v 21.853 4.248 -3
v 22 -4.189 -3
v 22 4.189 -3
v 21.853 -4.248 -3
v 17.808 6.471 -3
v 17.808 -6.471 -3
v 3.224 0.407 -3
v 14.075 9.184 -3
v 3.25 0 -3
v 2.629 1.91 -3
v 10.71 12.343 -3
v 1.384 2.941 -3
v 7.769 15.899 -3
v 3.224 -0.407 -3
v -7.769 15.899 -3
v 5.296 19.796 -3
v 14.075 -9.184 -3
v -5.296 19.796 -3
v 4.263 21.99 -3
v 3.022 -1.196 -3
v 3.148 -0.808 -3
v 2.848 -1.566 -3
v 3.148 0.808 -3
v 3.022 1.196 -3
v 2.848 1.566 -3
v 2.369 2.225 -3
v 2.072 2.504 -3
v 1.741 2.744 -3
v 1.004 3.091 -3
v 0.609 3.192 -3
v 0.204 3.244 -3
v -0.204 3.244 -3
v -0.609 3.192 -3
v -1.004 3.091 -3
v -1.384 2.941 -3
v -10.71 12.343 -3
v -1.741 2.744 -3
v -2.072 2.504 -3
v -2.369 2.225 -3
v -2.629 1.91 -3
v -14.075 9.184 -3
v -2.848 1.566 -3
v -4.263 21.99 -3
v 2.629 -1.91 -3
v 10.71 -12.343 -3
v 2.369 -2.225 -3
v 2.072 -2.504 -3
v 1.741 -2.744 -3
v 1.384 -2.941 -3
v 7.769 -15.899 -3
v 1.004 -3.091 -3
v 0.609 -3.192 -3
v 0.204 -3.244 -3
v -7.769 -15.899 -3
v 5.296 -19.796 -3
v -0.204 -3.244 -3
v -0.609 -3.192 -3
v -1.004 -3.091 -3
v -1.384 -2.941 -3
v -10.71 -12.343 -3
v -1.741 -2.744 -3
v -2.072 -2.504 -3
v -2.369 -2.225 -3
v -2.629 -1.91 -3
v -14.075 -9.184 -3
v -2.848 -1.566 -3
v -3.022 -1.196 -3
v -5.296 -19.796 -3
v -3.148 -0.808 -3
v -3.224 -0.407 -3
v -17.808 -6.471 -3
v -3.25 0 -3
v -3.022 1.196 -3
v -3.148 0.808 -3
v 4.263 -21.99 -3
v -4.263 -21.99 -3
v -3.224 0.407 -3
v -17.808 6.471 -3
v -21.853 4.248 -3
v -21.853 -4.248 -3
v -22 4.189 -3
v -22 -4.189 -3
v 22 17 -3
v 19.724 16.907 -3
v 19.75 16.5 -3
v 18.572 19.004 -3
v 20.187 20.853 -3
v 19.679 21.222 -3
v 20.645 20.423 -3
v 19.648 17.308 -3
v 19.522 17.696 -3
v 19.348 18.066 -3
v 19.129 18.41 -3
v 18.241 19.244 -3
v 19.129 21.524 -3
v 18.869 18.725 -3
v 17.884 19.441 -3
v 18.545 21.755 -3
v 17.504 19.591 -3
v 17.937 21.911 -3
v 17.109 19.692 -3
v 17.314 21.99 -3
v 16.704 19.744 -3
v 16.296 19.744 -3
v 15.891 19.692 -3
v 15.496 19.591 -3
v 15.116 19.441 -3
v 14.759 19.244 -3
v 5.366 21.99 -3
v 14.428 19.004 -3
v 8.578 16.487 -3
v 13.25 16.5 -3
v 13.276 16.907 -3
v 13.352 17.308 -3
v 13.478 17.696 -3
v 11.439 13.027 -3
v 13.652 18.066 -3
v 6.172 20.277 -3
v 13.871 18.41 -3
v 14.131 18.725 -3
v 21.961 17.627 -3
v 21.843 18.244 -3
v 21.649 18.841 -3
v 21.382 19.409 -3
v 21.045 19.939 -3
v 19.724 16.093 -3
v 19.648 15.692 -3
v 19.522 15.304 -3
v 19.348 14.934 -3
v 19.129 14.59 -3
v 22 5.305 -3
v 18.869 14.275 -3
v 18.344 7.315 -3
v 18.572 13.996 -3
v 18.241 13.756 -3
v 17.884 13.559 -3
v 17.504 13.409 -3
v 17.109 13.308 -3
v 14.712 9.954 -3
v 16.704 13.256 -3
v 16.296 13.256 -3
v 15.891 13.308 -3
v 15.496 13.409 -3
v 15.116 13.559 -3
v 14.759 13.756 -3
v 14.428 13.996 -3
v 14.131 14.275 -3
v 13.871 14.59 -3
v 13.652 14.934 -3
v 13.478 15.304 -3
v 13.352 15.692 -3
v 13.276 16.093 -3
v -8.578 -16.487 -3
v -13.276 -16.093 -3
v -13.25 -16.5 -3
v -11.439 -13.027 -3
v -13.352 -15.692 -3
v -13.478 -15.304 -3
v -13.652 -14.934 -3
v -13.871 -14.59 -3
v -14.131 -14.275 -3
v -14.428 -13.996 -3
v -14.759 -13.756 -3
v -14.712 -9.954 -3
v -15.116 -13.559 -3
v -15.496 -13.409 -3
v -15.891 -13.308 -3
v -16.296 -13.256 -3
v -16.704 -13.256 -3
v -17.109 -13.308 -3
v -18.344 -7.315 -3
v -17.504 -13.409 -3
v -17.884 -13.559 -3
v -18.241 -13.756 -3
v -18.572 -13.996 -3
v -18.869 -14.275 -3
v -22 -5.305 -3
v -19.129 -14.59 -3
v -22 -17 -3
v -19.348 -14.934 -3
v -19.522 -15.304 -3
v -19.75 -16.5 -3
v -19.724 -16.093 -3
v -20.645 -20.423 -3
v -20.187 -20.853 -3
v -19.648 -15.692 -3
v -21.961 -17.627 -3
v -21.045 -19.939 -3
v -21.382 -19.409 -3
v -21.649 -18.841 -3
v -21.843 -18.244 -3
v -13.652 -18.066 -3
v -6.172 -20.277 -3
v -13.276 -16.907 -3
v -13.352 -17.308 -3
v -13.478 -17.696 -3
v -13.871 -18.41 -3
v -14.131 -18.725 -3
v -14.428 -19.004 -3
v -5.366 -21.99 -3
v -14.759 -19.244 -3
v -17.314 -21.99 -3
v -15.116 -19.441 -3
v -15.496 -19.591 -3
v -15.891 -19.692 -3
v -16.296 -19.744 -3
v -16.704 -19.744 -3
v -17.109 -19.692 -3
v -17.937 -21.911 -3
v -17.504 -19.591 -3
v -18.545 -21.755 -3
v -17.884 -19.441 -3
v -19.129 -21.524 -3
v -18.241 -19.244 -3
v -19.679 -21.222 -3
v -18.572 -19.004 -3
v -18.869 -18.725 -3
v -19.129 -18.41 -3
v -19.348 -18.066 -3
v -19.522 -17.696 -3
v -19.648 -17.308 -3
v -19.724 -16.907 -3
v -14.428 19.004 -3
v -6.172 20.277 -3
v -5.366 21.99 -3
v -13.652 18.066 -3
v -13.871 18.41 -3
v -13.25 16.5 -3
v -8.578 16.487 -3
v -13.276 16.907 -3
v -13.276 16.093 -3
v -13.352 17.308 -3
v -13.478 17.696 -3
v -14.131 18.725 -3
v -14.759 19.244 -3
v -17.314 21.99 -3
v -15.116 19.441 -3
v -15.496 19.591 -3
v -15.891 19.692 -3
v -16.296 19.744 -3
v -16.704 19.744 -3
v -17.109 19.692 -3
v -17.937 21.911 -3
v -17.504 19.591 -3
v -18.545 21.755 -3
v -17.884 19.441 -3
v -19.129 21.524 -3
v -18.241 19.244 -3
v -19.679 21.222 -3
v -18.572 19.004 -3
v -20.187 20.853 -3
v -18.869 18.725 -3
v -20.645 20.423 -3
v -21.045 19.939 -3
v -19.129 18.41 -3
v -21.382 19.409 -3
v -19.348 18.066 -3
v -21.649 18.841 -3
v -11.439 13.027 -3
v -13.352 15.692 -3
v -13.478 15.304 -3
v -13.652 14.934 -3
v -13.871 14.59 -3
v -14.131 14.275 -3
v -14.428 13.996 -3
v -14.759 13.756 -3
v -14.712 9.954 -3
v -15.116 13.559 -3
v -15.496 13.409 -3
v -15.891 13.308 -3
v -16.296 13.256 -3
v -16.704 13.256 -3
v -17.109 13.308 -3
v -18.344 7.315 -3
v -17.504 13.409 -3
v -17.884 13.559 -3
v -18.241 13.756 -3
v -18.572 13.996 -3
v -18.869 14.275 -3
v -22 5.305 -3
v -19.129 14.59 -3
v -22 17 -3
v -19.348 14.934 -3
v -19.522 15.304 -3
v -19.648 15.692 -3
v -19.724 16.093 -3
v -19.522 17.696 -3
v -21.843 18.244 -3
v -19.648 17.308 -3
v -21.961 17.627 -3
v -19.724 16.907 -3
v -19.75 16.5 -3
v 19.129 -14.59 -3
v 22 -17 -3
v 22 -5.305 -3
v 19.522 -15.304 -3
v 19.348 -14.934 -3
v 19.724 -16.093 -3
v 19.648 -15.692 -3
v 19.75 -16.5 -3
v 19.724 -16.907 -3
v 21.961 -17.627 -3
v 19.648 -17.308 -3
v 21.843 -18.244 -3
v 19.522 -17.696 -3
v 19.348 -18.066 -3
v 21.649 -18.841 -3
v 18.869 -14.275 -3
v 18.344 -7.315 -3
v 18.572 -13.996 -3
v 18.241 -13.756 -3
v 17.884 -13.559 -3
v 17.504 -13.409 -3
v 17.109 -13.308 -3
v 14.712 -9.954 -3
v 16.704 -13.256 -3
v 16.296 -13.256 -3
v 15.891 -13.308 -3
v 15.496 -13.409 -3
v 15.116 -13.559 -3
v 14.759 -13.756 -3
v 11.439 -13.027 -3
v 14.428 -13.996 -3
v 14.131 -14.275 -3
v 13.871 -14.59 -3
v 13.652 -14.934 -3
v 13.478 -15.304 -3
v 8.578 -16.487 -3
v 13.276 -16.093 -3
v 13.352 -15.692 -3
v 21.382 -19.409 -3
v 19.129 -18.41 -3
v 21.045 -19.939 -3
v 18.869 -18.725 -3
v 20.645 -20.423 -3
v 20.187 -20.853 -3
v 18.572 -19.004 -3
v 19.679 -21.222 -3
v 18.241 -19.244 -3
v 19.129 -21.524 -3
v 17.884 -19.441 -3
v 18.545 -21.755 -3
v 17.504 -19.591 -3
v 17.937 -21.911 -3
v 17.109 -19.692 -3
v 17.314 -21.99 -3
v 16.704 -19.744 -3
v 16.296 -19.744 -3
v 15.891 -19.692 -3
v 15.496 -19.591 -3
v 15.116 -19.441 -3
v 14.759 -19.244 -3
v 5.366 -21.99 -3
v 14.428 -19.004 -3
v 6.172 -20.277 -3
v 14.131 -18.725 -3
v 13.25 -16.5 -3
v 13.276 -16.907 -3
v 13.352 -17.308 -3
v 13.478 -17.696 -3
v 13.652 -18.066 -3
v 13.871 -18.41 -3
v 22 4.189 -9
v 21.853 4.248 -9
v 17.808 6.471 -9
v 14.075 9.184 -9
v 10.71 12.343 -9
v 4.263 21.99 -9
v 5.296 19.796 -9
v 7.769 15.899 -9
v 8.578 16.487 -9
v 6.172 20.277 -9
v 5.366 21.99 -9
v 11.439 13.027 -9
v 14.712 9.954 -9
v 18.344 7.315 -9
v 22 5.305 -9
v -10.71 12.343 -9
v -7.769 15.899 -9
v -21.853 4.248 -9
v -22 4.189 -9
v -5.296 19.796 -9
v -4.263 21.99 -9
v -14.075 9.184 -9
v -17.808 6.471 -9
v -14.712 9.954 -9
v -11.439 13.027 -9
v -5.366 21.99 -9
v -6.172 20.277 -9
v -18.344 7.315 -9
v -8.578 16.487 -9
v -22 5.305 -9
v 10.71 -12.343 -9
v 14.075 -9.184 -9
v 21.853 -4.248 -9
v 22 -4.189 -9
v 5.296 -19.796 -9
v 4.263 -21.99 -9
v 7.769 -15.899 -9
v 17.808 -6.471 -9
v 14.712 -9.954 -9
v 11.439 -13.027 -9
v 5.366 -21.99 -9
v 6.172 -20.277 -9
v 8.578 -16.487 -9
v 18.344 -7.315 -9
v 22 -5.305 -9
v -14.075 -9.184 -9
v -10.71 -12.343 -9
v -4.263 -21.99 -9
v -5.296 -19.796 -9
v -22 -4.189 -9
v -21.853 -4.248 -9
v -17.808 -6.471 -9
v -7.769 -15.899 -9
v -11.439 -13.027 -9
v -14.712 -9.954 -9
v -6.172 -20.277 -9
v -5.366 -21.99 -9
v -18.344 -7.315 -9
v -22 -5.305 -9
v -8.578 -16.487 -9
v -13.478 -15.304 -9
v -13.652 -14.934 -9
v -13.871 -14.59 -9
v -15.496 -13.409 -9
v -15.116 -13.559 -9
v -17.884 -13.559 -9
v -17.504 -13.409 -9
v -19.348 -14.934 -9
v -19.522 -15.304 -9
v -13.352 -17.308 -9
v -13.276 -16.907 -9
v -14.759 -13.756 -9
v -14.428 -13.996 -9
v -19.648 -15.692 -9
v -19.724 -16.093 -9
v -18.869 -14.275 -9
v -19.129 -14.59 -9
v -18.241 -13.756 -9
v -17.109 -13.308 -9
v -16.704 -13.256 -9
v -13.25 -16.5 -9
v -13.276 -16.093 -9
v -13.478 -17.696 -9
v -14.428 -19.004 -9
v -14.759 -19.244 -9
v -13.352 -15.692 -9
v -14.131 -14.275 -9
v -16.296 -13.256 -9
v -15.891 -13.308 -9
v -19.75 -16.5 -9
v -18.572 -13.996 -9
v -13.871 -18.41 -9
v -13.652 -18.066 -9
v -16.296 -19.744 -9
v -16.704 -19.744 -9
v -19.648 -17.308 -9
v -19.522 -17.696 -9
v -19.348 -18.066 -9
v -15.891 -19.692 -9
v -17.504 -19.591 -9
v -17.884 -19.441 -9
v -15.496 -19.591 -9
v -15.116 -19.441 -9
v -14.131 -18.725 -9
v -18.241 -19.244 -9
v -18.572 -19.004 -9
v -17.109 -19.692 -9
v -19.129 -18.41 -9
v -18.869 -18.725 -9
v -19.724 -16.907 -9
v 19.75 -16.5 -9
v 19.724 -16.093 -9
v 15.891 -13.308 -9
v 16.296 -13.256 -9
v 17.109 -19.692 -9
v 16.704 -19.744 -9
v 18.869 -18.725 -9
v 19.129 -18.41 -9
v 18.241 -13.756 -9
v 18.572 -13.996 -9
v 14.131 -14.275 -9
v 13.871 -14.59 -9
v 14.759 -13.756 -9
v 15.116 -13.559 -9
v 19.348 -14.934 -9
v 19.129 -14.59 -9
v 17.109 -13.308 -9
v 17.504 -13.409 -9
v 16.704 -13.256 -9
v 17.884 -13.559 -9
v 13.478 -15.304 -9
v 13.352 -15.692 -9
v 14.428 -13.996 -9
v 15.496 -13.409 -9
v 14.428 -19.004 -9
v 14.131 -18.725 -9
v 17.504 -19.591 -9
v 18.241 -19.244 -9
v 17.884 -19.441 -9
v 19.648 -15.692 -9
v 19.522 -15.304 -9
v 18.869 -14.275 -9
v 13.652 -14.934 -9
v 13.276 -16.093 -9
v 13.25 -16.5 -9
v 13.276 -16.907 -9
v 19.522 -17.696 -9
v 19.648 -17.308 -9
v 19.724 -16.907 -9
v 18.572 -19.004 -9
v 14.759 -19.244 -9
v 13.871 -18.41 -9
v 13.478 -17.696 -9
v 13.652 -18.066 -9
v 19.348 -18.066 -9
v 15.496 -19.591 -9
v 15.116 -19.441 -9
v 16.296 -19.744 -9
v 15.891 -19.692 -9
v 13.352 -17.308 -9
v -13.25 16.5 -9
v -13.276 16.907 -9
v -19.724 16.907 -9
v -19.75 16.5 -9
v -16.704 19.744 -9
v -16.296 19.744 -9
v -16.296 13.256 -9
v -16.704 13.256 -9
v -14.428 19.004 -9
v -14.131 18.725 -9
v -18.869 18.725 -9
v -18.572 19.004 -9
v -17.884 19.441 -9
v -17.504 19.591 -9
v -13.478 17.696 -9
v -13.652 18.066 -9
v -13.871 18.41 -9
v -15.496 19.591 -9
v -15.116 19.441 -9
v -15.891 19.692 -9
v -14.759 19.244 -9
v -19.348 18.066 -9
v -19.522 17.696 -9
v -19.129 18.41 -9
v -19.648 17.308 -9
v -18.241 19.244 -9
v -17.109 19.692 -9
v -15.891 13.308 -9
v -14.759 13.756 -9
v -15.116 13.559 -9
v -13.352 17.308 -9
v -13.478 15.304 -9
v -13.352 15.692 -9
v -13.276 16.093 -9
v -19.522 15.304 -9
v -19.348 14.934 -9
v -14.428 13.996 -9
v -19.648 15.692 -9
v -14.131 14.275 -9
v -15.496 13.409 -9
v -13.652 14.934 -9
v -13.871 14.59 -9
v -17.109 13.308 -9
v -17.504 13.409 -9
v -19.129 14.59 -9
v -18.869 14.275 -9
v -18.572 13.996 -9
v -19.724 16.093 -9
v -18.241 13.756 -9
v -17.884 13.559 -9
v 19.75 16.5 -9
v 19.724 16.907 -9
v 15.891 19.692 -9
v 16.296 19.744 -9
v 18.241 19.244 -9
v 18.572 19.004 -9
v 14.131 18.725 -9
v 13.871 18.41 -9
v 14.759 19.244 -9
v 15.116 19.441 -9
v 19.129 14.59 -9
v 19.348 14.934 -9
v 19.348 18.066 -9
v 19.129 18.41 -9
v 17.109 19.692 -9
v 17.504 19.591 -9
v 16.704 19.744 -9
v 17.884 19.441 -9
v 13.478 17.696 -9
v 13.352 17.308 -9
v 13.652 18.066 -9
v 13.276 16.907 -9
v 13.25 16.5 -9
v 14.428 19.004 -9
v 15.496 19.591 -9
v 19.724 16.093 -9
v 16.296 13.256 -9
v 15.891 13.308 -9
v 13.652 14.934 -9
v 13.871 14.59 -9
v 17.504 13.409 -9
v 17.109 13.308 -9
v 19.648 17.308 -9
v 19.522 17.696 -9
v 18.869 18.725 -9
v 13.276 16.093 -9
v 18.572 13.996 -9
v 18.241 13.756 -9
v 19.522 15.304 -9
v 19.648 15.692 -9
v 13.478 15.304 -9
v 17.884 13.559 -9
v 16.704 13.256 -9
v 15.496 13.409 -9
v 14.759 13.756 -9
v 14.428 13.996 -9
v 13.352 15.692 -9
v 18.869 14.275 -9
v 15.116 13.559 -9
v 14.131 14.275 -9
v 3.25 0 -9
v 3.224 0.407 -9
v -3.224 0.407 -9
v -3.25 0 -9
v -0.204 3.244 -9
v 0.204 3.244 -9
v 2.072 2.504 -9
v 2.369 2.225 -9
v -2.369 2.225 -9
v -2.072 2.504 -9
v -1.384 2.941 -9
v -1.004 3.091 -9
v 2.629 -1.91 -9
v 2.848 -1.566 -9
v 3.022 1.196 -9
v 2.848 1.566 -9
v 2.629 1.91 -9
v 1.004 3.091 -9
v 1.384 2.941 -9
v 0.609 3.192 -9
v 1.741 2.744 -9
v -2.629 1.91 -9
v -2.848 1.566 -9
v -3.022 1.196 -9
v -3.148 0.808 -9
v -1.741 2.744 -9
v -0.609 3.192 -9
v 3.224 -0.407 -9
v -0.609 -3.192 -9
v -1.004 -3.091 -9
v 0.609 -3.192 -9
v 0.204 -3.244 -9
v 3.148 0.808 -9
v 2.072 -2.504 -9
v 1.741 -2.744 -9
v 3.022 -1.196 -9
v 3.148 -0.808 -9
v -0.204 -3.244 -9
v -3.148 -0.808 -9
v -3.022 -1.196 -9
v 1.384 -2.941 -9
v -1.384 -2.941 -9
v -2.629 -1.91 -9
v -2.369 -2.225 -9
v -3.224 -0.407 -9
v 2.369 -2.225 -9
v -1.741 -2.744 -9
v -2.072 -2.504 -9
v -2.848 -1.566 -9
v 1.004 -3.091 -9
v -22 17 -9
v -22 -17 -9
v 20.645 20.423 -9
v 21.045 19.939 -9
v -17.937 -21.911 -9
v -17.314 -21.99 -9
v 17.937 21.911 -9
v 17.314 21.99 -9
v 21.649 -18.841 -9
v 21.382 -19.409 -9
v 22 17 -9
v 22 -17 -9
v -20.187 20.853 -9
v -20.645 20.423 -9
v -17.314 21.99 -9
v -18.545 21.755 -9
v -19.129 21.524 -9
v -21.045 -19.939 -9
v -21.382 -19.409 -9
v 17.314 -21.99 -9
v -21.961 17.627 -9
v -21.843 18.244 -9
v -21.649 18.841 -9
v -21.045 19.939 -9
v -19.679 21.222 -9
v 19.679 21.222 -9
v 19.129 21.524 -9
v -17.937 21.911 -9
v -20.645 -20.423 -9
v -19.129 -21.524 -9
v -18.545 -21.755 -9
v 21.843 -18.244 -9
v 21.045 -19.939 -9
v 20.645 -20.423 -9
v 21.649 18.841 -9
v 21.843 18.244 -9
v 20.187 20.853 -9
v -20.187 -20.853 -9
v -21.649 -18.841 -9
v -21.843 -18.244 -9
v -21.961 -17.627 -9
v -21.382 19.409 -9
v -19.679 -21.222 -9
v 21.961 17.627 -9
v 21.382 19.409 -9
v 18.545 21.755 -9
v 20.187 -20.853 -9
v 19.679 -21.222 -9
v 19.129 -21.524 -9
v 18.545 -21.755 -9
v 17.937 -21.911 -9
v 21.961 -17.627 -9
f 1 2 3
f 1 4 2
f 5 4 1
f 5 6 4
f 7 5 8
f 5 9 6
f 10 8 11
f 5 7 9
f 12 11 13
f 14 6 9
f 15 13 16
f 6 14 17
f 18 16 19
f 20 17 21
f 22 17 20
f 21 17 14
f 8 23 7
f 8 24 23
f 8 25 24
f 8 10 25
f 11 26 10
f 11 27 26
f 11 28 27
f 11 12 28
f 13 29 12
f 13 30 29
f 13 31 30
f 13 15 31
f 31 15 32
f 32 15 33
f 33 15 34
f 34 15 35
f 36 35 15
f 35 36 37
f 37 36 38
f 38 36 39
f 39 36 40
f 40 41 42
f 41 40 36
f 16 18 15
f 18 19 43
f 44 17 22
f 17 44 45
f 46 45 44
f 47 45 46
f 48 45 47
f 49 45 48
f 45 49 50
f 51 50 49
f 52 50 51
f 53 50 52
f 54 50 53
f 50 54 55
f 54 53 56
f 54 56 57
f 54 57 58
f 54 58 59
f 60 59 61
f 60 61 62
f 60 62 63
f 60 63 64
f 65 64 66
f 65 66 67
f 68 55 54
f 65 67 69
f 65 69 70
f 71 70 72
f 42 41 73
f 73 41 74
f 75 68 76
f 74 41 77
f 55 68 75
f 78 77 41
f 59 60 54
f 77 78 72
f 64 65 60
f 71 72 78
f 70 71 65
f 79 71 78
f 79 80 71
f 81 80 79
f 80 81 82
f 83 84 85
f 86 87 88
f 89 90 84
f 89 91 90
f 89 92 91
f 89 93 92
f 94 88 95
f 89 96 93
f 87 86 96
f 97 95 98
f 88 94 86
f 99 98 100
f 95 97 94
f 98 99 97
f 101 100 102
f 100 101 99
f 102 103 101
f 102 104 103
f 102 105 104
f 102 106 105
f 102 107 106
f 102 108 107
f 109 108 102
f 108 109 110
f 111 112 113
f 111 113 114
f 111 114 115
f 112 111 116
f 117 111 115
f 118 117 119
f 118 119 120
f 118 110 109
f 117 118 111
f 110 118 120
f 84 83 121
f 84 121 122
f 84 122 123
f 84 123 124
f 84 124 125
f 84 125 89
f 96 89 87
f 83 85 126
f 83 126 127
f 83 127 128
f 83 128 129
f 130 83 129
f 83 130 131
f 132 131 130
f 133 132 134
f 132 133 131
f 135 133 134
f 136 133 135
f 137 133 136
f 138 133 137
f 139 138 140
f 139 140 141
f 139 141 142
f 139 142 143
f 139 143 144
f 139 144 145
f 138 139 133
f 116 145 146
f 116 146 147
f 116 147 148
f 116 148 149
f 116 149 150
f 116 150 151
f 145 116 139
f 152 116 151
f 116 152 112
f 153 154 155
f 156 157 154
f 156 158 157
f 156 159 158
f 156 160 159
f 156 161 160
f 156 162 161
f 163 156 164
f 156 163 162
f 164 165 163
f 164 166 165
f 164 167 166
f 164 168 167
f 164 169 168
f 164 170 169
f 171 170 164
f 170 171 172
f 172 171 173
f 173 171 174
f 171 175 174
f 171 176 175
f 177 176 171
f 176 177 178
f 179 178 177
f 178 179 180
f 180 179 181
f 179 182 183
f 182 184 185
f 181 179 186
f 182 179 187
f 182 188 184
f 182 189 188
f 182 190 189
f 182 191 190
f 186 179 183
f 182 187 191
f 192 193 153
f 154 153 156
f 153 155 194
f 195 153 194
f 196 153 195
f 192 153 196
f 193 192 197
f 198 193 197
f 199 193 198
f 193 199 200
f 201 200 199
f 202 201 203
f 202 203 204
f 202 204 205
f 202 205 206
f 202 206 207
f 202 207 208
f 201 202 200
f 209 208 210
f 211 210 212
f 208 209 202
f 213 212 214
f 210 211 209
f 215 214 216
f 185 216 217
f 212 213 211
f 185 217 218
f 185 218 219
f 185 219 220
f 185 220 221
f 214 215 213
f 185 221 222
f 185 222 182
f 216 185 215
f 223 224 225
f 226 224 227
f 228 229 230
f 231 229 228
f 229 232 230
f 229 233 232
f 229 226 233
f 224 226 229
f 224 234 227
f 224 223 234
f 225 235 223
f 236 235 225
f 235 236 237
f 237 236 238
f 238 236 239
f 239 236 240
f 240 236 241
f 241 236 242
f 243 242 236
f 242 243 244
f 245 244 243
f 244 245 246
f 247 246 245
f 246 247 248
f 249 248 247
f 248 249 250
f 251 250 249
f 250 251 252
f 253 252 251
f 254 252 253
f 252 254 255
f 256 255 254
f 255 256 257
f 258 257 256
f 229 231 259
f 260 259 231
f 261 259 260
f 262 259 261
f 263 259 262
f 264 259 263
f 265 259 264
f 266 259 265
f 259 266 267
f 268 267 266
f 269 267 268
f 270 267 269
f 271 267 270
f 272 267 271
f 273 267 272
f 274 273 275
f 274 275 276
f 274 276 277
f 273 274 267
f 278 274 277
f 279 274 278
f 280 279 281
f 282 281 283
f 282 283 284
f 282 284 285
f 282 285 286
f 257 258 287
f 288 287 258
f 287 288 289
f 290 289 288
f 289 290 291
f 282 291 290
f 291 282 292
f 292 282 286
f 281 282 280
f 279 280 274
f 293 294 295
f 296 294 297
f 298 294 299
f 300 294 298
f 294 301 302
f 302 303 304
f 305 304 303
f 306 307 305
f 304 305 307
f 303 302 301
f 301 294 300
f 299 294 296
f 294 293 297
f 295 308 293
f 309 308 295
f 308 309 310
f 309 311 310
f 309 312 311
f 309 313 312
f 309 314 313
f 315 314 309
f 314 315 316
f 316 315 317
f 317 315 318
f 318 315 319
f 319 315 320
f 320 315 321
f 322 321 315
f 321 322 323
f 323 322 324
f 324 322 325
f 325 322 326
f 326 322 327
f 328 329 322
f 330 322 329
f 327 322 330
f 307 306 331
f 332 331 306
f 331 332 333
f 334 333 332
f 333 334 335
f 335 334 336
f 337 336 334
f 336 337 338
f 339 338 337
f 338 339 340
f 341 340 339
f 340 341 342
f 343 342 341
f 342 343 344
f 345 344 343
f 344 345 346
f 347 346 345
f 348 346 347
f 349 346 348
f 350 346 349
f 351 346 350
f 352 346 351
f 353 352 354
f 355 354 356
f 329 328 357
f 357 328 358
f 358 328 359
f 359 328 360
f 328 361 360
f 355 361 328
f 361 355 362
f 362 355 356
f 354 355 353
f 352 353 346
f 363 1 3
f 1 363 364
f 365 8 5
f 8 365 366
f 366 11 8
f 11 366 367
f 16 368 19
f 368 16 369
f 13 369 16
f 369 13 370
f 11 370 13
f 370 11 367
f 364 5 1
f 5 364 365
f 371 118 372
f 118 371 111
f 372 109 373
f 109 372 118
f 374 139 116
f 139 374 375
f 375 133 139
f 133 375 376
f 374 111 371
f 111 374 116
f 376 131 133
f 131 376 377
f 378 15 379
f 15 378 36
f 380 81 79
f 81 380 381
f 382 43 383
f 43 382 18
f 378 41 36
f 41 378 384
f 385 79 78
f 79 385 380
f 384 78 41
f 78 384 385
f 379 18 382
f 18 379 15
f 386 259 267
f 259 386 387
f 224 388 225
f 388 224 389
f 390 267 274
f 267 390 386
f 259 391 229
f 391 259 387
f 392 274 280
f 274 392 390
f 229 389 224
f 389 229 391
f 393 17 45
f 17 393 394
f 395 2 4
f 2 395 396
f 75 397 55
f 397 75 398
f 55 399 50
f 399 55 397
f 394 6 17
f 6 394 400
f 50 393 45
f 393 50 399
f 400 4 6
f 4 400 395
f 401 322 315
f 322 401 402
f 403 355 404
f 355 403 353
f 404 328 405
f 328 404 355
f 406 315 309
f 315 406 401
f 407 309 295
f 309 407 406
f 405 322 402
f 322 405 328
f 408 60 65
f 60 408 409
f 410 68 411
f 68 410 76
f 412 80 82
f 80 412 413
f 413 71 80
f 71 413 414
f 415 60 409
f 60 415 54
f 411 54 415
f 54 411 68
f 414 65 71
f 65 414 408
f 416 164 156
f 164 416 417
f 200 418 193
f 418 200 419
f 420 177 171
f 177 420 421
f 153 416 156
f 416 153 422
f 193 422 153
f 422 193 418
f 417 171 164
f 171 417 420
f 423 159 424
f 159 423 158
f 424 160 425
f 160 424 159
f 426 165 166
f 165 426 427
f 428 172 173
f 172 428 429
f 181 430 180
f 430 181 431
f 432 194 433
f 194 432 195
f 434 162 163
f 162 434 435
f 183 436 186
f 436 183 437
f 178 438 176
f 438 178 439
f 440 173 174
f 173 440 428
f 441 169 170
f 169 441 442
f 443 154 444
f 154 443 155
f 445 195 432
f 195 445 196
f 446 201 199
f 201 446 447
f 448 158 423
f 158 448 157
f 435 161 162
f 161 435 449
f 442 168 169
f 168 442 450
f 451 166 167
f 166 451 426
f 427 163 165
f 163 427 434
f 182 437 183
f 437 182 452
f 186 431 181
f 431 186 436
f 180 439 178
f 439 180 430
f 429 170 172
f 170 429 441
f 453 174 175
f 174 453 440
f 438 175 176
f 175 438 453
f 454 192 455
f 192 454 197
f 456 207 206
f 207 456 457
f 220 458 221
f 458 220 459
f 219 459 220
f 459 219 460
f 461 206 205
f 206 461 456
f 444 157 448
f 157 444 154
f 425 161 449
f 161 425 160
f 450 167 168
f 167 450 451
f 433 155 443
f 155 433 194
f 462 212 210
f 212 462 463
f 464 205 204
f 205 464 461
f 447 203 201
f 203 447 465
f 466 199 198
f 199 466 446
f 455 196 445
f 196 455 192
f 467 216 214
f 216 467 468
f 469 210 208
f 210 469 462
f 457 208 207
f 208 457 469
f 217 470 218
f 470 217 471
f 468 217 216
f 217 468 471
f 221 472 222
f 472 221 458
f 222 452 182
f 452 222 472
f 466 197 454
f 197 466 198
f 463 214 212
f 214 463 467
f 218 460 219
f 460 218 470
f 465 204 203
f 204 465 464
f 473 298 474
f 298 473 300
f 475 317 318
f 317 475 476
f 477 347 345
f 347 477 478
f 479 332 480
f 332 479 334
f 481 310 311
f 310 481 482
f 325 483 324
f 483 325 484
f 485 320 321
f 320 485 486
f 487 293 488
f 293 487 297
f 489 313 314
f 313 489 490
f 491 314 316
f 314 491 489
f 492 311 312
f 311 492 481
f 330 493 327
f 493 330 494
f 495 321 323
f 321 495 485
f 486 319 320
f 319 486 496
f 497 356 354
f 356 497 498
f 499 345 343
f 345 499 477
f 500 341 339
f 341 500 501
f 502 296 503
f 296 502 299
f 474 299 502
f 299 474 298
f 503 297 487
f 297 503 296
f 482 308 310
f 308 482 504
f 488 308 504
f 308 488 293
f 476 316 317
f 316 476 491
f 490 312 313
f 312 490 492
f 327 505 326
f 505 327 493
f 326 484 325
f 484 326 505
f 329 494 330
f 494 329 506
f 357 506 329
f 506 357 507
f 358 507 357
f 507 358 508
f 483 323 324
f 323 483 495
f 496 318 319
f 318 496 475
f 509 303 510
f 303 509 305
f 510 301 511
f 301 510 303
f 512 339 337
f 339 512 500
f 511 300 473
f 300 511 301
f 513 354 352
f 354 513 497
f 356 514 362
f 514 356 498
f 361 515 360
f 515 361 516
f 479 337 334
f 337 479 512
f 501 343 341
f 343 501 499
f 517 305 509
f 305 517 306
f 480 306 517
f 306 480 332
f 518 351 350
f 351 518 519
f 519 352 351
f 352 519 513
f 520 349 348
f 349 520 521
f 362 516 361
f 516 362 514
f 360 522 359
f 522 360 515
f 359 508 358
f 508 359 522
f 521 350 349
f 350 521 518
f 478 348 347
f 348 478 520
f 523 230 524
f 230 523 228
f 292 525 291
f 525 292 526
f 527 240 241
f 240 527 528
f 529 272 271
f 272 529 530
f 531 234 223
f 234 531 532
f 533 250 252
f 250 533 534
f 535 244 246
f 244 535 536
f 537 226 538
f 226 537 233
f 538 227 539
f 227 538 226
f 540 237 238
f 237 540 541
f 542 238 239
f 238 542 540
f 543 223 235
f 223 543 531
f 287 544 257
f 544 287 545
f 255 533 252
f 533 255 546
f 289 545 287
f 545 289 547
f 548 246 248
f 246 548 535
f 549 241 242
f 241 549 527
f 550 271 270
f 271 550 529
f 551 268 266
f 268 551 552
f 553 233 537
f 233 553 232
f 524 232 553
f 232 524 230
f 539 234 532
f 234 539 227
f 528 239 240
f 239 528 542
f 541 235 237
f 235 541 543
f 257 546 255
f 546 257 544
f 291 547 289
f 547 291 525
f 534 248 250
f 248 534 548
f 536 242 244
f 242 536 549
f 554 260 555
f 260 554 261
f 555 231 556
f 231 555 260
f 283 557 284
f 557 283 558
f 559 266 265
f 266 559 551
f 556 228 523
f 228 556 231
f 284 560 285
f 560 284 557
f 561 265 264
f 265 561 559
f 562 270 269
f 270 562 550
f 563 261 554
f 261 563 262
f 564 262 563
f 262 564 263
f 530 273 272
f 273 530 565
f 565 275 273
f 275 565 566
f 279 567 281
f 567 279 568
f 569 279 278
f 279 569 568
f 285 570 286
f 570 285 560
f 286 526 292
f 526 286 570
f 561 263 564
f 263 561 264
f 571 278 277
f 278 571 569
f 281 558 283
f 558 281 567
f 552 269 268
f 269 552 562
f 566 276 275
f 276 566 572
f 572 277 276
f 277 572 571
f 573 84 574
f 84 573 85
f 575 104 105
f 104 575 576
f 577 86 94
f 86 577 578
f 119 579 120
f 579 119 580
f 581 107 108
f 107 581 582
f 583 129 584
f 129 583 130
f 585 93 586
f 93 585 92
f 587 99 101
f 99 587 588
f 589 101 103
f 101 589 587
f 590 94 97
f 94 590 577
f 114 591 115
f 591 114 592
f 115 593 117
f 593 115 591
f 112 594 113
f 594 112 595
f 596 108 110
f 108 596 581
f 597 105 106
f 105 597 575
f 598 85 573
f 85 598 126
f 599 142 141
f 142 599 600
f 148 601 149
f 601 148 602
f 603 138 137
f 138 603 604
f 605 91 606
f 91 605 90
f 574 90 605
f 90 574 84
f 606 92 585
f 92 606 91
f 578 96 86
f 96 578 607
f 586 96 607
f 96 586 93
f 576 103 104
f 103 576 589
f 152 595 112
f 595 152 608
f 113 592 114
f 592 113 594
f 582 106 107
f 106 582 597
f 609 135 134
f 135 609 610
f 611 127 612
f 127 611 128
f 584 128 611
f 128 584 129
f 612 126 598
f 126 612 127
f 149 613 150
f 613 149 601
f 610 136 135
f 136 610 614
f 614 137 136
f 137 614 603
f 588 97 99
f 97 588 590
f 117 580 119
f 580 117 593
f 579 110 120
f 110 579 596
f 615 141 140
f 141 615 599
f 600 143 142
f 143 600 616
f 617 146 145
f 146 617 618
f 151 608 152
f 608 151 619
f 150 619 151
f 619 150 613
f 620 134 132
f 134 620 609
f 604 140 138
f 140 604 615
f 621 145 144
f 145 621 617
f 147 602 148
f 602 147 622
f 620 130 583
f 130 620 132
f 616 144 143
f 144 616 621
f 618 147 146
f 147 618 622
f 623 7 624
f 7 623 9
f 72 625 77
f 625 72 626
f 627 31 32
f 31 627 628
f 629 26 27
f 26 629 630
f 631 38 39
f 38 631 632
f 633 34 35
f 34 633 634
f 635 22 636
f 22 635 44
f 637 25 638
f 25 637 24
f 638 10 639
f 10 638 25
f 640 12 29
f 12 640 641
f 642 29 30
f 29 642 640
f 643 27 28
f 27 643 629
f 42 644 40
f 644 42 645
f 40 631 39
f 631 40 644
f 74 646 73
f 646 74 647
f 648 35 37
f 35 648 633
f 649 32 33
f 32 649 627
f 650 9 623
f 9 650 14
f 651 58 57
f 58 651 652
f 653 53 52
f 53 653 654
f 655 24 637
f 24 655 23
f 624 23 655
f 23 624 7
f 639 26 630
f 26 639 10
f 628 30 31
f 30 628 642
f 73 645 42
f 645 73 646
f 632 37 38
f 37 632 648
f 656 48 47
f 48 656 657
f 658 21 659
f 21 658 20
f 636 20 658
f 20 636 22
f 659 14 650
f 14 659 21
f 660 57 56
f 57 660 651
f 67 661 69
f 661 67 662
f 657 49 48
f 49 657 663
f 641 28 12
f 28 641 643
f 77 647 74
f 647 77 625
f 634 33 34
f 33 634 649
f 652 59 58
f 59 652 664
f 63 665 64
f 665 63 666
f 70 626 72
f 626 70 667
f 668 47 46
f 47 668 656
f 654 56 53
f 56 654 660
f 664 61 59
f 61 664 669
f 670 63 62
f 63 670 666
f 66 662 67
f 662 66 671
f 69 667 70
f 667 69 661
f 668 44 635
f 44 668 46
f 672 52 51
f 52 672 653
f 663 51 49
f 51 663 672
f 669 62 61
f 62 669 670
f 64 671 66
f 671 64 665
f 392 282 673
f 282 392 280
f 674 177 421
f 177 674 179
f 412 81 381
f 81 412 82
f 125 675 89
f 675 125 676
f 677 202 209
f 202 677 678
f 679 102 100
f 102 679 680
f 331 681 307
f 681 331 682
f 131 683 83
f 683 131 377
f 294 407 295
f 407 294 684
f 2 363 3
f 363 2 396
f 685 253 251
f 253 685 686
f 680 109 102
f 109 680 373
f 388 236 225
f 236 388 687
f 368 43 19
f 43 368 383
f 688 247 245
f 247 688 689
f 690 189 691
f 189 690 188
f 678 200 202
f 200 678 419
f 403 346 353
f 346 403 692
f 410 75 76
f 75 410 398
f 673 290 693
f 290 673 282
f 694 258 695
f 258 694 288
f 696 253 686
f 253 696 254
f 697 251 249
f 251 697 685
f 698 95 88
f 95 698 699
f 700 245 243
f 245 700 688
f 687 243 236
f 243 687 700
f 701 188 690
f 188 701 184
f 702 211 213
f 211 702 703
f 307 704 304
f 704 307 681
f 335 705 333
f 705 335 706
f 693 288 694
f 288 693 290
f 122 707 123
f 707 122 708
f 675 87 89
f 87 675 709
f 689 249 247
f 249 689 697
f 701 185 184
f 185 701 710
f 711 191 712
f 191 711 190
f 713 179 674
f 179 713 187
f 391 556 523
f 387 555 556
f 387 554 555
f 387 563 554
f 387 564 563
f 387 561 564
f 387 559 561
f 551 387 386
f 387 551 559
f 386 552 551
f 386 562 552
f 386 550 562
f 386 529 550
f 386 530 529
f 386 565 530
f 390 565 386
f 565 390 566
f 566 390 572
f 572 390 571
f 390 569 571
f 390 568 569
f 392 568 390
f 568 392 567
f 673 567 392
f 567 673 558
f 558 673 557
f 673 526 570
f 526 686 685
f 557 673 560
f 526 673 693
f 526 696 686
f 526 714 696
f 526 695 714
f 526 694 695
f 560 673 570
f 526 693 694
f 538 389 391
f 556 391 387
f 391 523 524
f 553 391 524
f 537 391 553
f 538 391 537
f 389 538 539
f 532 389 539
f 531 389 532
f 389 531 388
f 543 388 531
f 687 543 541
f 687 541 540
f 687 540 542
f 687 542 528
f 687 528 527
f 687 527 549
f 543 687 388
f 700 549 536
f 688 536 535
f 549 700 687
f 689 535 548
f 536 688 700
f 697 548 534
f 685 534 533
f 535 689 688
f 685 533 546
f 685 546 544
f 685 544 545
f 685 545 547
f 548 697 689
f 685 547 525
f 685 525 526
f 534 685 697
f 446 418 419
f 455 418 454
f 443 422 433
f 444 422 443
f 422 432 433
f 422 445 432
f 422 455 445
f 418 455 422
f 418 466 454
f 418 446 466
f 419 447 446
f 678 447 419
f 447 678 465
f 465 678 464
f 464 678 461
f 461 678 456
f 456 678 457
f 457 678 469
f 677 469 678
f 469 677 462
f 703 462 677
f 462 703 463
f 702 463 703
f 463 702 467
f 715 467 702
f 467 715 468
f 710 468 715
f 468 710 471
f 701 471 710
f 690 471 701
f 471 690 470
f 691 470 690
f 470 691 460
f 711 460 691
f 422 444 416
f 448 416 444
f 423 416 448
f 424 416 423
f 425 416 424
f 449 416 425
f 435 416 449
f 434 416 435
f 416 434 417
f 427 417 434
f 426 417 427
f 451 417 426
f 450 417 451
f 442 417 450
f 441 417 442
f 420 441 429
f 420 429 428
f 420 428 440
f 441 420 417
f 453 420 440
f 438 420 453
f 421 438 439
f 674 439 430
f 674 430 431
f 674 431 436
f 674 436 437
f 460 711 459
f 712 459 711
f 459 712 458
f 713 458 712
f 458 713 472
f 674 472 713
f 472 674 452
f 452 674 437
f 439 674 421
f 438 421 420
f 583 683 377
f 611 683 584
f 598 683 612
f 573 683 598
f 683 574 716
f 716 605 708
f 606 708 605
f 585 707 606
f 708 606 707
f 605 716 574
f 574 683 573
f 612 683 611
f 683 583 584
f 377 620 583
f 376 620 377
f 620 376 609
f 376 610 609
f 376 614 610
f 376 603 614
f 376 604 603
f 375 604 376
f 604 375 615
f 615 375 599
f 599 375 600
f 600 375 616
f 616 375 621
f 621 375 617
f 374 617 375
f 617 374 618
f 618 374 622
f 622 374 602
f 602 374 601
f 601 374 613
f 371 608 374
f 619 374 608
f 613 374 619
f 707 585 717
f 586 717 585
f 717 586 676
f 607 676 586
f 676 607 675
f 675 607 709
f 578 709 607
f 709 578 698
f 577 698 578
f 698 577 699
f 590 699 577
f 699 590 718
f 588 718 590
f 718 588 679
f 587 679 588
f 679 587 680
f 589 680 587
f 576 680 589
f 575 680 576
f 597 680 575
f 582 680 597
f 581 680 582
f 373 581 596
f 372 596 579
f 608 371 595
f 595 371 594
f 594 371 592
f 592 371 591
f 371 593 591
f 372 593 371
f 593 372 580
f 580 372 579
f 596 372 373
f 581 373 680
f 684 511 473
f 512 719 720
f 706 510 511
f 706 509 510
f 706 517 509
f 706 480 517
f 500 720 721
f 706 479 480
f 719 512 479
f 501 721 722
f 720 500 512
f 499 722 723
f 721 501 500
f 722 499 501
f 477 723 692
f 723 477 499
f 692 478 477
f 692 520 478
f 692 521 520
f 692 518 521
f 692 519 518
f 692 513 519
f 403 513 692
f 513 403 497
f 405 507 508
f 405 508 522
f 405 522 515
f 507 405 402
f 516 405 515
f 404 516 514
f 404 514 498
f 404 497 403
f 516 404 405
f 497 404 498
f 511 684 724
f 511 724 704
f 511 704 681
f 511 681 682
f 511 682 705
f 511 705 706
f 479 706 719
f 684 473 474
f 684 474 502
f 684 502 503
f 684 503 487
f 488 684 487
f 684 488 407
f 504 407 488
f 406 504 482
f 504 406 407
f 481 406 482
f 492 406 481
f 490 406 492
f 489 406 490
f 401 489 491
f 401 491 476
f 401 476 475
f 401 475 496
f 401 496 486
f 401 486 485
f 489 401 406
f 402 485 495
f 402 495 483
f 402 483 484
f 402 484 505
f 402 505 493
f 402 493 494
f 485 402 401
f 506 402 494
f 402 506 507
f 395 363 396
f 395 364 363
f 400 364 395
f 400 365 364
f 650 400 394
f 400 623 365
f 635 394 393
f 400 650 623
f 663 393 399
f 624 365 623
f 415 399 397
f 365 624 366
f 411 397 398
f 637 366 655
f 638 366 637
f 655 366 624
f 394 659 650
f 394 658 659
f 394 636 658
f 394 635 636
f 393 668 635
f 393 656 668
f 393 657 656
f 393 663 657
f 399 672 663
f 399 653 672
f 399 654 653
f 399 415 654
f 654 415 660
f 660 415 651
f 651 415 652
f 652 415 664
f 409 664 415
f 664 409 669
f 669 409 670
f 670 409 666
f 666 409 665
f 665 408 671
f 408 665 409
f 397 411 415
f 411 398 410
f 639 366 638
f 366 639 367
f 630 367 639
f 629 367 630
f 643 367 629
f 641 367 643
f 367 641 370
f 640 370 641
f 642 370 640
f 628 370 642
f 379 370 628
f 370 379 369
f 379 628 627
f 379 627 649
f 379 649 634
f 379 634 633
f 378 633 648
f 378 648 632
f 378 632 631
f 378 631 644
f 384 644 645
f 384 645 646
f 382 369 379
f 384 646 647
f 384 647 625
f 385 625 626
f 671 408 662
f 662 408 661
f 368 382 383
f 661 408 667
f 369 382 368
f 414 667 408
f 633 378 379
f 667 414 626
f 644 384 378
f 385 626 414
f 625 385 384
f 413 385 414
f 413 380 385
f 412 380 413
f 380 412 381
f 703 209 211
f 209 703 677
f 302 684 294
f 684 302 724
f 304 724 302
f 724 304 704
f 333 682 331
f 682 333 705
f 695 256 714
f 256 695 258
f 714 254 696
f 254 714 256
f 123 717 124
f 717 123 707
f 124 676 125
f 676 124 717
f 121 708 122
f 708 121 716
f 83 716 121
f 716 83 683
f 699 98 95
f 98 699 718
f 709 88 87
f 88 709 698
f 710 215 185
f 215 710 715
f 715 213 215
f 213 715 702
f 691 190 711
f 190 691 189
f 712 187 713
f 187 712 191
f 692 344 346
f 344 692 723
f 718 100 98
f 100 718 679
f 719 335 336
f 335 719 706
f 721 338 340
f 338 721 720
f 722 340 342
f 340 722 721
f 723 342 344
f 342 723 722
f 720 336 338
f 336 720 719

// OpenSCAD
$fn = 50;


difference() {
	union() {
		translate(v = [0, 0, -9]) {
			hull() {
				translate(v = [-17.0000000000, 17.0000000000, 0]) {
					cylinder(h = 12, r = 5);
				}
				translate(v = [17.0000000000, 17.0000000000, 0]) {
					cylinder(h = 12, r = 5);
				}
				translate(v = [-17.0000000000, -17.0000000000, 0]) {
					cylinder(h = 12, r = 5);
				}
				translate(v = [17.0000000000, -17.0000000000, 0]) {
					cylinder(h = 12, r = 5);
				}
			}
		}
	}
	union() {
		translate(v = [37.5000000000, 37.5000000000, -3]) {
			rotate(a = [0, 0, 0]) {
				difference() {
					union() {
						cylinder(h = 3, r = 37.7500000000);
					}
					union() {
						cylinder(h = 3, r = 36.7500000000);
					}
				}
			}
		}
		translate(v = [37.5000000000, 37.5000000000, -3]) {
			rotate(a = [0, 0, 0]) {
				difference() {
					union() {
						cylinder(h = 1, r = 36.7500000000);
					}
					union() {
						cylinder(h = 1, r = 33.7500000000);
					}
				}
			}
		}
		translate(v = [37.5000000000, 37.5000000000, -106]) {
			rotate(a = [0, 0, 0]) {
				difference() {
					union() {
						cylinder(h = 103, r = 36.7500000000);
					}
					union() {
						cylinder(h = 103, r = 35.7500000000);
					}
				}
			}
		}
		translate(v = [37.5000000000, 37.5000000000, -109]) {
			rotate(a = [0, 0, 0]) {
				difference() {
					union() {
						cylinder(h = 3, r = 36.7500000000);
					}
					union() {
						cylinder(h = 3, r = 35.7500000000);
					}
				}
			}
		}
		translate(v = [-37.5000000000, 37.5000000000, -3]) {
			rotate(a = [0, 0, 0]) {
				difference() {
					union() {
						cylinder(h = 3, r = 37.7500000000);
					}
					union() {
						cylinder(h = 3, r = 36.7500000000);
					}
				}
			}
		}
		translate(v = [-37.5000000000, 37.5000000000, -3]) {
			rotate(a = [0, 0, 0]) {
				difference() {
					union() {
						cylinder(h = 1, r = 36.7500000000);
					}
					union() {
						cylinder(h = 1, r = 33.7500000000);
					}
				}
			}
		}
		translate(v = [-37.5000000000, 37.5000000000, -106]) {
			rotate(a = [0, 0, 0]) {
				difference() {
					union() {
						cylinder(h = 103, r = 36.7500000000);
					}
					union() {
						cylinder(h = 103, r = 35.7500000000);
					}
				}
			}
		}
		translate(v = [-37.5000000000, 37.5000000000, -109]) {
			rotate(a = [0, 0, 0]) {
				difference() {
					union() {
						cylinder(h = 3, r = 36.7500000000);
					}
					union() {
						cylinder(h = 3, r = 35.7500000000);
					}
				}
			}
		}
		translate(v = [37.5000000000, -37.5000000000, -3]) {
			rotate(a = [0, 0, 0]) {
				difference() {
					union() {
						cylinder(h = 3, r = 37.7500000000);
					}
					union() {
						cylinder(h = 3, r = 36.7500000000);
					}
				}
			}
		}
		translate(v = [37.5000000000, -37.5000000000, -3]) {
			rotate(a = [0, 0, 0]) {
				difference() {
					union() {
						cylinder(h = 1, r = 36.7500000000);
					}
					union() {
						cylinder(h = 1, r = 33.7500000000);
					}
				}
			}
		}
		translate(v = [37.5000000000, -37.5000000000, -106]) {
			rotate(a = [0, 0, 0]) {
				difference() {
					union() {
						cylinder(h = 103, r = 36.7500000000);
					}
					union() {
						cylinder(h = 103, r = 35.7500000000);
					}
				}
			}
		}
		translate(v = [37.5000000000, -37.5000000000, -109]) {
			rotate(a = [0, 0, 0]) {
				difference() {
					union() {
						cylinder(h = 3, r = 36.7500000000);
					}
					union() {
						cylinder(h = 3, r = 35.7500000000);
					}
				}
			}
		}
		translate(v = [-37.5000000000, -37.5000000000, -3]) {
			rotate(a = [0, 0, 0]) {
				difference() {
					union() {
						cylinder(h = 3, r = 37.7500000000);
					}
					union() {
						cylinder(h = 3, r = 36.7500000000);
					}
				}
			}
		}
		translate(v = [-37.5000000000, -37.5000000000, -3]) {
			rotate(a = [0, 0, 0]) {
				difference() {
					union() {
						cylinder(h = 1, r = 36.7500000000);
					}
					union() {
						cylinder(h = 1, r = 33.7500000000);
					}
				}
			}
		}
		translate(v = [-37.5000000000, -37.5000000000, -106]) {
			rotate(a = [0, 0, 0]) {
				difference() {
					union() {
						cylinder(h = 103, r = 36.7500000000);
					}
					union() {
						cylinder(h = 103, r = 35.7500000000);
					}
				}
			}
		}
		translate(v = [-37.5000000000, -37.5000000000, -109]) {
			rotate(a = [0, 0, 0]) {
				difference() {
					union() {
						cylinder(h = 3, r = 36.7500000000);
					}
					union() {
						cylinder(h = 3, r = 35.7500000000);
					}
				}
			}
		}
		translate(v = [37.5000000000, 37.5000000000, -106.5000000000]) {
			cylinder(h = 1, r = 36.7500000000);
		}
		translate(v = [-37.5000000000, 37.5000000000, -106.5000000000]) {
			cylinder(h = 1, r = 36.7500000000);
		}
		translate(v = [37.5000000000, -37.5000000000, -106.5000000000]) {
			cylinder(h = 1, r = 36.7500000000);
		}
		translate(v = [-37.5000000000, -37.5000000000, -106.5000000000]) {
			cylinder(h = 1, r = 36.7500000000);
		}
		translate(v = [-16.5000000000, -16.5000000000, -125.0000000000]) {
			cylinder(h = 250, r = 3.2500000000);
		}
		translate(v = [16.5000000000, -16.5000000000, -125.0000000000]) {
			cylinder(h = 250, r = 3.2500000000);
		}
		translate(v = [-16.5000000000, 16.5000000000, -125.0000000000]) {
			cylinder(h = 250, r = 3.2500000000);
		}
		translate(v = [16.5000000000, 16.5000000000, -125.0000000000]) {
			cylinder(h = 250, r = 3.2500000000);
		}
		translate(v = [0.0000000000, 0.0000000000, -125.0000000000]) {
			cylinder(h = 250, r = 3.2500000000);
		}
		#translate(v = [-250.0000000000, -250.0000000000, -3]) {
			cube(size = [500, 500, 500]);
		}
		#translate(v = [-250.0000000000, -250.0000000000, -3]) {
			cube(size = [500, 500, 500]);
		}
		#translate(v = [-250.0000000000, -250.0000000000, -3]) {
			cube(size = [500, 500, 500]);
		}
	}
}
